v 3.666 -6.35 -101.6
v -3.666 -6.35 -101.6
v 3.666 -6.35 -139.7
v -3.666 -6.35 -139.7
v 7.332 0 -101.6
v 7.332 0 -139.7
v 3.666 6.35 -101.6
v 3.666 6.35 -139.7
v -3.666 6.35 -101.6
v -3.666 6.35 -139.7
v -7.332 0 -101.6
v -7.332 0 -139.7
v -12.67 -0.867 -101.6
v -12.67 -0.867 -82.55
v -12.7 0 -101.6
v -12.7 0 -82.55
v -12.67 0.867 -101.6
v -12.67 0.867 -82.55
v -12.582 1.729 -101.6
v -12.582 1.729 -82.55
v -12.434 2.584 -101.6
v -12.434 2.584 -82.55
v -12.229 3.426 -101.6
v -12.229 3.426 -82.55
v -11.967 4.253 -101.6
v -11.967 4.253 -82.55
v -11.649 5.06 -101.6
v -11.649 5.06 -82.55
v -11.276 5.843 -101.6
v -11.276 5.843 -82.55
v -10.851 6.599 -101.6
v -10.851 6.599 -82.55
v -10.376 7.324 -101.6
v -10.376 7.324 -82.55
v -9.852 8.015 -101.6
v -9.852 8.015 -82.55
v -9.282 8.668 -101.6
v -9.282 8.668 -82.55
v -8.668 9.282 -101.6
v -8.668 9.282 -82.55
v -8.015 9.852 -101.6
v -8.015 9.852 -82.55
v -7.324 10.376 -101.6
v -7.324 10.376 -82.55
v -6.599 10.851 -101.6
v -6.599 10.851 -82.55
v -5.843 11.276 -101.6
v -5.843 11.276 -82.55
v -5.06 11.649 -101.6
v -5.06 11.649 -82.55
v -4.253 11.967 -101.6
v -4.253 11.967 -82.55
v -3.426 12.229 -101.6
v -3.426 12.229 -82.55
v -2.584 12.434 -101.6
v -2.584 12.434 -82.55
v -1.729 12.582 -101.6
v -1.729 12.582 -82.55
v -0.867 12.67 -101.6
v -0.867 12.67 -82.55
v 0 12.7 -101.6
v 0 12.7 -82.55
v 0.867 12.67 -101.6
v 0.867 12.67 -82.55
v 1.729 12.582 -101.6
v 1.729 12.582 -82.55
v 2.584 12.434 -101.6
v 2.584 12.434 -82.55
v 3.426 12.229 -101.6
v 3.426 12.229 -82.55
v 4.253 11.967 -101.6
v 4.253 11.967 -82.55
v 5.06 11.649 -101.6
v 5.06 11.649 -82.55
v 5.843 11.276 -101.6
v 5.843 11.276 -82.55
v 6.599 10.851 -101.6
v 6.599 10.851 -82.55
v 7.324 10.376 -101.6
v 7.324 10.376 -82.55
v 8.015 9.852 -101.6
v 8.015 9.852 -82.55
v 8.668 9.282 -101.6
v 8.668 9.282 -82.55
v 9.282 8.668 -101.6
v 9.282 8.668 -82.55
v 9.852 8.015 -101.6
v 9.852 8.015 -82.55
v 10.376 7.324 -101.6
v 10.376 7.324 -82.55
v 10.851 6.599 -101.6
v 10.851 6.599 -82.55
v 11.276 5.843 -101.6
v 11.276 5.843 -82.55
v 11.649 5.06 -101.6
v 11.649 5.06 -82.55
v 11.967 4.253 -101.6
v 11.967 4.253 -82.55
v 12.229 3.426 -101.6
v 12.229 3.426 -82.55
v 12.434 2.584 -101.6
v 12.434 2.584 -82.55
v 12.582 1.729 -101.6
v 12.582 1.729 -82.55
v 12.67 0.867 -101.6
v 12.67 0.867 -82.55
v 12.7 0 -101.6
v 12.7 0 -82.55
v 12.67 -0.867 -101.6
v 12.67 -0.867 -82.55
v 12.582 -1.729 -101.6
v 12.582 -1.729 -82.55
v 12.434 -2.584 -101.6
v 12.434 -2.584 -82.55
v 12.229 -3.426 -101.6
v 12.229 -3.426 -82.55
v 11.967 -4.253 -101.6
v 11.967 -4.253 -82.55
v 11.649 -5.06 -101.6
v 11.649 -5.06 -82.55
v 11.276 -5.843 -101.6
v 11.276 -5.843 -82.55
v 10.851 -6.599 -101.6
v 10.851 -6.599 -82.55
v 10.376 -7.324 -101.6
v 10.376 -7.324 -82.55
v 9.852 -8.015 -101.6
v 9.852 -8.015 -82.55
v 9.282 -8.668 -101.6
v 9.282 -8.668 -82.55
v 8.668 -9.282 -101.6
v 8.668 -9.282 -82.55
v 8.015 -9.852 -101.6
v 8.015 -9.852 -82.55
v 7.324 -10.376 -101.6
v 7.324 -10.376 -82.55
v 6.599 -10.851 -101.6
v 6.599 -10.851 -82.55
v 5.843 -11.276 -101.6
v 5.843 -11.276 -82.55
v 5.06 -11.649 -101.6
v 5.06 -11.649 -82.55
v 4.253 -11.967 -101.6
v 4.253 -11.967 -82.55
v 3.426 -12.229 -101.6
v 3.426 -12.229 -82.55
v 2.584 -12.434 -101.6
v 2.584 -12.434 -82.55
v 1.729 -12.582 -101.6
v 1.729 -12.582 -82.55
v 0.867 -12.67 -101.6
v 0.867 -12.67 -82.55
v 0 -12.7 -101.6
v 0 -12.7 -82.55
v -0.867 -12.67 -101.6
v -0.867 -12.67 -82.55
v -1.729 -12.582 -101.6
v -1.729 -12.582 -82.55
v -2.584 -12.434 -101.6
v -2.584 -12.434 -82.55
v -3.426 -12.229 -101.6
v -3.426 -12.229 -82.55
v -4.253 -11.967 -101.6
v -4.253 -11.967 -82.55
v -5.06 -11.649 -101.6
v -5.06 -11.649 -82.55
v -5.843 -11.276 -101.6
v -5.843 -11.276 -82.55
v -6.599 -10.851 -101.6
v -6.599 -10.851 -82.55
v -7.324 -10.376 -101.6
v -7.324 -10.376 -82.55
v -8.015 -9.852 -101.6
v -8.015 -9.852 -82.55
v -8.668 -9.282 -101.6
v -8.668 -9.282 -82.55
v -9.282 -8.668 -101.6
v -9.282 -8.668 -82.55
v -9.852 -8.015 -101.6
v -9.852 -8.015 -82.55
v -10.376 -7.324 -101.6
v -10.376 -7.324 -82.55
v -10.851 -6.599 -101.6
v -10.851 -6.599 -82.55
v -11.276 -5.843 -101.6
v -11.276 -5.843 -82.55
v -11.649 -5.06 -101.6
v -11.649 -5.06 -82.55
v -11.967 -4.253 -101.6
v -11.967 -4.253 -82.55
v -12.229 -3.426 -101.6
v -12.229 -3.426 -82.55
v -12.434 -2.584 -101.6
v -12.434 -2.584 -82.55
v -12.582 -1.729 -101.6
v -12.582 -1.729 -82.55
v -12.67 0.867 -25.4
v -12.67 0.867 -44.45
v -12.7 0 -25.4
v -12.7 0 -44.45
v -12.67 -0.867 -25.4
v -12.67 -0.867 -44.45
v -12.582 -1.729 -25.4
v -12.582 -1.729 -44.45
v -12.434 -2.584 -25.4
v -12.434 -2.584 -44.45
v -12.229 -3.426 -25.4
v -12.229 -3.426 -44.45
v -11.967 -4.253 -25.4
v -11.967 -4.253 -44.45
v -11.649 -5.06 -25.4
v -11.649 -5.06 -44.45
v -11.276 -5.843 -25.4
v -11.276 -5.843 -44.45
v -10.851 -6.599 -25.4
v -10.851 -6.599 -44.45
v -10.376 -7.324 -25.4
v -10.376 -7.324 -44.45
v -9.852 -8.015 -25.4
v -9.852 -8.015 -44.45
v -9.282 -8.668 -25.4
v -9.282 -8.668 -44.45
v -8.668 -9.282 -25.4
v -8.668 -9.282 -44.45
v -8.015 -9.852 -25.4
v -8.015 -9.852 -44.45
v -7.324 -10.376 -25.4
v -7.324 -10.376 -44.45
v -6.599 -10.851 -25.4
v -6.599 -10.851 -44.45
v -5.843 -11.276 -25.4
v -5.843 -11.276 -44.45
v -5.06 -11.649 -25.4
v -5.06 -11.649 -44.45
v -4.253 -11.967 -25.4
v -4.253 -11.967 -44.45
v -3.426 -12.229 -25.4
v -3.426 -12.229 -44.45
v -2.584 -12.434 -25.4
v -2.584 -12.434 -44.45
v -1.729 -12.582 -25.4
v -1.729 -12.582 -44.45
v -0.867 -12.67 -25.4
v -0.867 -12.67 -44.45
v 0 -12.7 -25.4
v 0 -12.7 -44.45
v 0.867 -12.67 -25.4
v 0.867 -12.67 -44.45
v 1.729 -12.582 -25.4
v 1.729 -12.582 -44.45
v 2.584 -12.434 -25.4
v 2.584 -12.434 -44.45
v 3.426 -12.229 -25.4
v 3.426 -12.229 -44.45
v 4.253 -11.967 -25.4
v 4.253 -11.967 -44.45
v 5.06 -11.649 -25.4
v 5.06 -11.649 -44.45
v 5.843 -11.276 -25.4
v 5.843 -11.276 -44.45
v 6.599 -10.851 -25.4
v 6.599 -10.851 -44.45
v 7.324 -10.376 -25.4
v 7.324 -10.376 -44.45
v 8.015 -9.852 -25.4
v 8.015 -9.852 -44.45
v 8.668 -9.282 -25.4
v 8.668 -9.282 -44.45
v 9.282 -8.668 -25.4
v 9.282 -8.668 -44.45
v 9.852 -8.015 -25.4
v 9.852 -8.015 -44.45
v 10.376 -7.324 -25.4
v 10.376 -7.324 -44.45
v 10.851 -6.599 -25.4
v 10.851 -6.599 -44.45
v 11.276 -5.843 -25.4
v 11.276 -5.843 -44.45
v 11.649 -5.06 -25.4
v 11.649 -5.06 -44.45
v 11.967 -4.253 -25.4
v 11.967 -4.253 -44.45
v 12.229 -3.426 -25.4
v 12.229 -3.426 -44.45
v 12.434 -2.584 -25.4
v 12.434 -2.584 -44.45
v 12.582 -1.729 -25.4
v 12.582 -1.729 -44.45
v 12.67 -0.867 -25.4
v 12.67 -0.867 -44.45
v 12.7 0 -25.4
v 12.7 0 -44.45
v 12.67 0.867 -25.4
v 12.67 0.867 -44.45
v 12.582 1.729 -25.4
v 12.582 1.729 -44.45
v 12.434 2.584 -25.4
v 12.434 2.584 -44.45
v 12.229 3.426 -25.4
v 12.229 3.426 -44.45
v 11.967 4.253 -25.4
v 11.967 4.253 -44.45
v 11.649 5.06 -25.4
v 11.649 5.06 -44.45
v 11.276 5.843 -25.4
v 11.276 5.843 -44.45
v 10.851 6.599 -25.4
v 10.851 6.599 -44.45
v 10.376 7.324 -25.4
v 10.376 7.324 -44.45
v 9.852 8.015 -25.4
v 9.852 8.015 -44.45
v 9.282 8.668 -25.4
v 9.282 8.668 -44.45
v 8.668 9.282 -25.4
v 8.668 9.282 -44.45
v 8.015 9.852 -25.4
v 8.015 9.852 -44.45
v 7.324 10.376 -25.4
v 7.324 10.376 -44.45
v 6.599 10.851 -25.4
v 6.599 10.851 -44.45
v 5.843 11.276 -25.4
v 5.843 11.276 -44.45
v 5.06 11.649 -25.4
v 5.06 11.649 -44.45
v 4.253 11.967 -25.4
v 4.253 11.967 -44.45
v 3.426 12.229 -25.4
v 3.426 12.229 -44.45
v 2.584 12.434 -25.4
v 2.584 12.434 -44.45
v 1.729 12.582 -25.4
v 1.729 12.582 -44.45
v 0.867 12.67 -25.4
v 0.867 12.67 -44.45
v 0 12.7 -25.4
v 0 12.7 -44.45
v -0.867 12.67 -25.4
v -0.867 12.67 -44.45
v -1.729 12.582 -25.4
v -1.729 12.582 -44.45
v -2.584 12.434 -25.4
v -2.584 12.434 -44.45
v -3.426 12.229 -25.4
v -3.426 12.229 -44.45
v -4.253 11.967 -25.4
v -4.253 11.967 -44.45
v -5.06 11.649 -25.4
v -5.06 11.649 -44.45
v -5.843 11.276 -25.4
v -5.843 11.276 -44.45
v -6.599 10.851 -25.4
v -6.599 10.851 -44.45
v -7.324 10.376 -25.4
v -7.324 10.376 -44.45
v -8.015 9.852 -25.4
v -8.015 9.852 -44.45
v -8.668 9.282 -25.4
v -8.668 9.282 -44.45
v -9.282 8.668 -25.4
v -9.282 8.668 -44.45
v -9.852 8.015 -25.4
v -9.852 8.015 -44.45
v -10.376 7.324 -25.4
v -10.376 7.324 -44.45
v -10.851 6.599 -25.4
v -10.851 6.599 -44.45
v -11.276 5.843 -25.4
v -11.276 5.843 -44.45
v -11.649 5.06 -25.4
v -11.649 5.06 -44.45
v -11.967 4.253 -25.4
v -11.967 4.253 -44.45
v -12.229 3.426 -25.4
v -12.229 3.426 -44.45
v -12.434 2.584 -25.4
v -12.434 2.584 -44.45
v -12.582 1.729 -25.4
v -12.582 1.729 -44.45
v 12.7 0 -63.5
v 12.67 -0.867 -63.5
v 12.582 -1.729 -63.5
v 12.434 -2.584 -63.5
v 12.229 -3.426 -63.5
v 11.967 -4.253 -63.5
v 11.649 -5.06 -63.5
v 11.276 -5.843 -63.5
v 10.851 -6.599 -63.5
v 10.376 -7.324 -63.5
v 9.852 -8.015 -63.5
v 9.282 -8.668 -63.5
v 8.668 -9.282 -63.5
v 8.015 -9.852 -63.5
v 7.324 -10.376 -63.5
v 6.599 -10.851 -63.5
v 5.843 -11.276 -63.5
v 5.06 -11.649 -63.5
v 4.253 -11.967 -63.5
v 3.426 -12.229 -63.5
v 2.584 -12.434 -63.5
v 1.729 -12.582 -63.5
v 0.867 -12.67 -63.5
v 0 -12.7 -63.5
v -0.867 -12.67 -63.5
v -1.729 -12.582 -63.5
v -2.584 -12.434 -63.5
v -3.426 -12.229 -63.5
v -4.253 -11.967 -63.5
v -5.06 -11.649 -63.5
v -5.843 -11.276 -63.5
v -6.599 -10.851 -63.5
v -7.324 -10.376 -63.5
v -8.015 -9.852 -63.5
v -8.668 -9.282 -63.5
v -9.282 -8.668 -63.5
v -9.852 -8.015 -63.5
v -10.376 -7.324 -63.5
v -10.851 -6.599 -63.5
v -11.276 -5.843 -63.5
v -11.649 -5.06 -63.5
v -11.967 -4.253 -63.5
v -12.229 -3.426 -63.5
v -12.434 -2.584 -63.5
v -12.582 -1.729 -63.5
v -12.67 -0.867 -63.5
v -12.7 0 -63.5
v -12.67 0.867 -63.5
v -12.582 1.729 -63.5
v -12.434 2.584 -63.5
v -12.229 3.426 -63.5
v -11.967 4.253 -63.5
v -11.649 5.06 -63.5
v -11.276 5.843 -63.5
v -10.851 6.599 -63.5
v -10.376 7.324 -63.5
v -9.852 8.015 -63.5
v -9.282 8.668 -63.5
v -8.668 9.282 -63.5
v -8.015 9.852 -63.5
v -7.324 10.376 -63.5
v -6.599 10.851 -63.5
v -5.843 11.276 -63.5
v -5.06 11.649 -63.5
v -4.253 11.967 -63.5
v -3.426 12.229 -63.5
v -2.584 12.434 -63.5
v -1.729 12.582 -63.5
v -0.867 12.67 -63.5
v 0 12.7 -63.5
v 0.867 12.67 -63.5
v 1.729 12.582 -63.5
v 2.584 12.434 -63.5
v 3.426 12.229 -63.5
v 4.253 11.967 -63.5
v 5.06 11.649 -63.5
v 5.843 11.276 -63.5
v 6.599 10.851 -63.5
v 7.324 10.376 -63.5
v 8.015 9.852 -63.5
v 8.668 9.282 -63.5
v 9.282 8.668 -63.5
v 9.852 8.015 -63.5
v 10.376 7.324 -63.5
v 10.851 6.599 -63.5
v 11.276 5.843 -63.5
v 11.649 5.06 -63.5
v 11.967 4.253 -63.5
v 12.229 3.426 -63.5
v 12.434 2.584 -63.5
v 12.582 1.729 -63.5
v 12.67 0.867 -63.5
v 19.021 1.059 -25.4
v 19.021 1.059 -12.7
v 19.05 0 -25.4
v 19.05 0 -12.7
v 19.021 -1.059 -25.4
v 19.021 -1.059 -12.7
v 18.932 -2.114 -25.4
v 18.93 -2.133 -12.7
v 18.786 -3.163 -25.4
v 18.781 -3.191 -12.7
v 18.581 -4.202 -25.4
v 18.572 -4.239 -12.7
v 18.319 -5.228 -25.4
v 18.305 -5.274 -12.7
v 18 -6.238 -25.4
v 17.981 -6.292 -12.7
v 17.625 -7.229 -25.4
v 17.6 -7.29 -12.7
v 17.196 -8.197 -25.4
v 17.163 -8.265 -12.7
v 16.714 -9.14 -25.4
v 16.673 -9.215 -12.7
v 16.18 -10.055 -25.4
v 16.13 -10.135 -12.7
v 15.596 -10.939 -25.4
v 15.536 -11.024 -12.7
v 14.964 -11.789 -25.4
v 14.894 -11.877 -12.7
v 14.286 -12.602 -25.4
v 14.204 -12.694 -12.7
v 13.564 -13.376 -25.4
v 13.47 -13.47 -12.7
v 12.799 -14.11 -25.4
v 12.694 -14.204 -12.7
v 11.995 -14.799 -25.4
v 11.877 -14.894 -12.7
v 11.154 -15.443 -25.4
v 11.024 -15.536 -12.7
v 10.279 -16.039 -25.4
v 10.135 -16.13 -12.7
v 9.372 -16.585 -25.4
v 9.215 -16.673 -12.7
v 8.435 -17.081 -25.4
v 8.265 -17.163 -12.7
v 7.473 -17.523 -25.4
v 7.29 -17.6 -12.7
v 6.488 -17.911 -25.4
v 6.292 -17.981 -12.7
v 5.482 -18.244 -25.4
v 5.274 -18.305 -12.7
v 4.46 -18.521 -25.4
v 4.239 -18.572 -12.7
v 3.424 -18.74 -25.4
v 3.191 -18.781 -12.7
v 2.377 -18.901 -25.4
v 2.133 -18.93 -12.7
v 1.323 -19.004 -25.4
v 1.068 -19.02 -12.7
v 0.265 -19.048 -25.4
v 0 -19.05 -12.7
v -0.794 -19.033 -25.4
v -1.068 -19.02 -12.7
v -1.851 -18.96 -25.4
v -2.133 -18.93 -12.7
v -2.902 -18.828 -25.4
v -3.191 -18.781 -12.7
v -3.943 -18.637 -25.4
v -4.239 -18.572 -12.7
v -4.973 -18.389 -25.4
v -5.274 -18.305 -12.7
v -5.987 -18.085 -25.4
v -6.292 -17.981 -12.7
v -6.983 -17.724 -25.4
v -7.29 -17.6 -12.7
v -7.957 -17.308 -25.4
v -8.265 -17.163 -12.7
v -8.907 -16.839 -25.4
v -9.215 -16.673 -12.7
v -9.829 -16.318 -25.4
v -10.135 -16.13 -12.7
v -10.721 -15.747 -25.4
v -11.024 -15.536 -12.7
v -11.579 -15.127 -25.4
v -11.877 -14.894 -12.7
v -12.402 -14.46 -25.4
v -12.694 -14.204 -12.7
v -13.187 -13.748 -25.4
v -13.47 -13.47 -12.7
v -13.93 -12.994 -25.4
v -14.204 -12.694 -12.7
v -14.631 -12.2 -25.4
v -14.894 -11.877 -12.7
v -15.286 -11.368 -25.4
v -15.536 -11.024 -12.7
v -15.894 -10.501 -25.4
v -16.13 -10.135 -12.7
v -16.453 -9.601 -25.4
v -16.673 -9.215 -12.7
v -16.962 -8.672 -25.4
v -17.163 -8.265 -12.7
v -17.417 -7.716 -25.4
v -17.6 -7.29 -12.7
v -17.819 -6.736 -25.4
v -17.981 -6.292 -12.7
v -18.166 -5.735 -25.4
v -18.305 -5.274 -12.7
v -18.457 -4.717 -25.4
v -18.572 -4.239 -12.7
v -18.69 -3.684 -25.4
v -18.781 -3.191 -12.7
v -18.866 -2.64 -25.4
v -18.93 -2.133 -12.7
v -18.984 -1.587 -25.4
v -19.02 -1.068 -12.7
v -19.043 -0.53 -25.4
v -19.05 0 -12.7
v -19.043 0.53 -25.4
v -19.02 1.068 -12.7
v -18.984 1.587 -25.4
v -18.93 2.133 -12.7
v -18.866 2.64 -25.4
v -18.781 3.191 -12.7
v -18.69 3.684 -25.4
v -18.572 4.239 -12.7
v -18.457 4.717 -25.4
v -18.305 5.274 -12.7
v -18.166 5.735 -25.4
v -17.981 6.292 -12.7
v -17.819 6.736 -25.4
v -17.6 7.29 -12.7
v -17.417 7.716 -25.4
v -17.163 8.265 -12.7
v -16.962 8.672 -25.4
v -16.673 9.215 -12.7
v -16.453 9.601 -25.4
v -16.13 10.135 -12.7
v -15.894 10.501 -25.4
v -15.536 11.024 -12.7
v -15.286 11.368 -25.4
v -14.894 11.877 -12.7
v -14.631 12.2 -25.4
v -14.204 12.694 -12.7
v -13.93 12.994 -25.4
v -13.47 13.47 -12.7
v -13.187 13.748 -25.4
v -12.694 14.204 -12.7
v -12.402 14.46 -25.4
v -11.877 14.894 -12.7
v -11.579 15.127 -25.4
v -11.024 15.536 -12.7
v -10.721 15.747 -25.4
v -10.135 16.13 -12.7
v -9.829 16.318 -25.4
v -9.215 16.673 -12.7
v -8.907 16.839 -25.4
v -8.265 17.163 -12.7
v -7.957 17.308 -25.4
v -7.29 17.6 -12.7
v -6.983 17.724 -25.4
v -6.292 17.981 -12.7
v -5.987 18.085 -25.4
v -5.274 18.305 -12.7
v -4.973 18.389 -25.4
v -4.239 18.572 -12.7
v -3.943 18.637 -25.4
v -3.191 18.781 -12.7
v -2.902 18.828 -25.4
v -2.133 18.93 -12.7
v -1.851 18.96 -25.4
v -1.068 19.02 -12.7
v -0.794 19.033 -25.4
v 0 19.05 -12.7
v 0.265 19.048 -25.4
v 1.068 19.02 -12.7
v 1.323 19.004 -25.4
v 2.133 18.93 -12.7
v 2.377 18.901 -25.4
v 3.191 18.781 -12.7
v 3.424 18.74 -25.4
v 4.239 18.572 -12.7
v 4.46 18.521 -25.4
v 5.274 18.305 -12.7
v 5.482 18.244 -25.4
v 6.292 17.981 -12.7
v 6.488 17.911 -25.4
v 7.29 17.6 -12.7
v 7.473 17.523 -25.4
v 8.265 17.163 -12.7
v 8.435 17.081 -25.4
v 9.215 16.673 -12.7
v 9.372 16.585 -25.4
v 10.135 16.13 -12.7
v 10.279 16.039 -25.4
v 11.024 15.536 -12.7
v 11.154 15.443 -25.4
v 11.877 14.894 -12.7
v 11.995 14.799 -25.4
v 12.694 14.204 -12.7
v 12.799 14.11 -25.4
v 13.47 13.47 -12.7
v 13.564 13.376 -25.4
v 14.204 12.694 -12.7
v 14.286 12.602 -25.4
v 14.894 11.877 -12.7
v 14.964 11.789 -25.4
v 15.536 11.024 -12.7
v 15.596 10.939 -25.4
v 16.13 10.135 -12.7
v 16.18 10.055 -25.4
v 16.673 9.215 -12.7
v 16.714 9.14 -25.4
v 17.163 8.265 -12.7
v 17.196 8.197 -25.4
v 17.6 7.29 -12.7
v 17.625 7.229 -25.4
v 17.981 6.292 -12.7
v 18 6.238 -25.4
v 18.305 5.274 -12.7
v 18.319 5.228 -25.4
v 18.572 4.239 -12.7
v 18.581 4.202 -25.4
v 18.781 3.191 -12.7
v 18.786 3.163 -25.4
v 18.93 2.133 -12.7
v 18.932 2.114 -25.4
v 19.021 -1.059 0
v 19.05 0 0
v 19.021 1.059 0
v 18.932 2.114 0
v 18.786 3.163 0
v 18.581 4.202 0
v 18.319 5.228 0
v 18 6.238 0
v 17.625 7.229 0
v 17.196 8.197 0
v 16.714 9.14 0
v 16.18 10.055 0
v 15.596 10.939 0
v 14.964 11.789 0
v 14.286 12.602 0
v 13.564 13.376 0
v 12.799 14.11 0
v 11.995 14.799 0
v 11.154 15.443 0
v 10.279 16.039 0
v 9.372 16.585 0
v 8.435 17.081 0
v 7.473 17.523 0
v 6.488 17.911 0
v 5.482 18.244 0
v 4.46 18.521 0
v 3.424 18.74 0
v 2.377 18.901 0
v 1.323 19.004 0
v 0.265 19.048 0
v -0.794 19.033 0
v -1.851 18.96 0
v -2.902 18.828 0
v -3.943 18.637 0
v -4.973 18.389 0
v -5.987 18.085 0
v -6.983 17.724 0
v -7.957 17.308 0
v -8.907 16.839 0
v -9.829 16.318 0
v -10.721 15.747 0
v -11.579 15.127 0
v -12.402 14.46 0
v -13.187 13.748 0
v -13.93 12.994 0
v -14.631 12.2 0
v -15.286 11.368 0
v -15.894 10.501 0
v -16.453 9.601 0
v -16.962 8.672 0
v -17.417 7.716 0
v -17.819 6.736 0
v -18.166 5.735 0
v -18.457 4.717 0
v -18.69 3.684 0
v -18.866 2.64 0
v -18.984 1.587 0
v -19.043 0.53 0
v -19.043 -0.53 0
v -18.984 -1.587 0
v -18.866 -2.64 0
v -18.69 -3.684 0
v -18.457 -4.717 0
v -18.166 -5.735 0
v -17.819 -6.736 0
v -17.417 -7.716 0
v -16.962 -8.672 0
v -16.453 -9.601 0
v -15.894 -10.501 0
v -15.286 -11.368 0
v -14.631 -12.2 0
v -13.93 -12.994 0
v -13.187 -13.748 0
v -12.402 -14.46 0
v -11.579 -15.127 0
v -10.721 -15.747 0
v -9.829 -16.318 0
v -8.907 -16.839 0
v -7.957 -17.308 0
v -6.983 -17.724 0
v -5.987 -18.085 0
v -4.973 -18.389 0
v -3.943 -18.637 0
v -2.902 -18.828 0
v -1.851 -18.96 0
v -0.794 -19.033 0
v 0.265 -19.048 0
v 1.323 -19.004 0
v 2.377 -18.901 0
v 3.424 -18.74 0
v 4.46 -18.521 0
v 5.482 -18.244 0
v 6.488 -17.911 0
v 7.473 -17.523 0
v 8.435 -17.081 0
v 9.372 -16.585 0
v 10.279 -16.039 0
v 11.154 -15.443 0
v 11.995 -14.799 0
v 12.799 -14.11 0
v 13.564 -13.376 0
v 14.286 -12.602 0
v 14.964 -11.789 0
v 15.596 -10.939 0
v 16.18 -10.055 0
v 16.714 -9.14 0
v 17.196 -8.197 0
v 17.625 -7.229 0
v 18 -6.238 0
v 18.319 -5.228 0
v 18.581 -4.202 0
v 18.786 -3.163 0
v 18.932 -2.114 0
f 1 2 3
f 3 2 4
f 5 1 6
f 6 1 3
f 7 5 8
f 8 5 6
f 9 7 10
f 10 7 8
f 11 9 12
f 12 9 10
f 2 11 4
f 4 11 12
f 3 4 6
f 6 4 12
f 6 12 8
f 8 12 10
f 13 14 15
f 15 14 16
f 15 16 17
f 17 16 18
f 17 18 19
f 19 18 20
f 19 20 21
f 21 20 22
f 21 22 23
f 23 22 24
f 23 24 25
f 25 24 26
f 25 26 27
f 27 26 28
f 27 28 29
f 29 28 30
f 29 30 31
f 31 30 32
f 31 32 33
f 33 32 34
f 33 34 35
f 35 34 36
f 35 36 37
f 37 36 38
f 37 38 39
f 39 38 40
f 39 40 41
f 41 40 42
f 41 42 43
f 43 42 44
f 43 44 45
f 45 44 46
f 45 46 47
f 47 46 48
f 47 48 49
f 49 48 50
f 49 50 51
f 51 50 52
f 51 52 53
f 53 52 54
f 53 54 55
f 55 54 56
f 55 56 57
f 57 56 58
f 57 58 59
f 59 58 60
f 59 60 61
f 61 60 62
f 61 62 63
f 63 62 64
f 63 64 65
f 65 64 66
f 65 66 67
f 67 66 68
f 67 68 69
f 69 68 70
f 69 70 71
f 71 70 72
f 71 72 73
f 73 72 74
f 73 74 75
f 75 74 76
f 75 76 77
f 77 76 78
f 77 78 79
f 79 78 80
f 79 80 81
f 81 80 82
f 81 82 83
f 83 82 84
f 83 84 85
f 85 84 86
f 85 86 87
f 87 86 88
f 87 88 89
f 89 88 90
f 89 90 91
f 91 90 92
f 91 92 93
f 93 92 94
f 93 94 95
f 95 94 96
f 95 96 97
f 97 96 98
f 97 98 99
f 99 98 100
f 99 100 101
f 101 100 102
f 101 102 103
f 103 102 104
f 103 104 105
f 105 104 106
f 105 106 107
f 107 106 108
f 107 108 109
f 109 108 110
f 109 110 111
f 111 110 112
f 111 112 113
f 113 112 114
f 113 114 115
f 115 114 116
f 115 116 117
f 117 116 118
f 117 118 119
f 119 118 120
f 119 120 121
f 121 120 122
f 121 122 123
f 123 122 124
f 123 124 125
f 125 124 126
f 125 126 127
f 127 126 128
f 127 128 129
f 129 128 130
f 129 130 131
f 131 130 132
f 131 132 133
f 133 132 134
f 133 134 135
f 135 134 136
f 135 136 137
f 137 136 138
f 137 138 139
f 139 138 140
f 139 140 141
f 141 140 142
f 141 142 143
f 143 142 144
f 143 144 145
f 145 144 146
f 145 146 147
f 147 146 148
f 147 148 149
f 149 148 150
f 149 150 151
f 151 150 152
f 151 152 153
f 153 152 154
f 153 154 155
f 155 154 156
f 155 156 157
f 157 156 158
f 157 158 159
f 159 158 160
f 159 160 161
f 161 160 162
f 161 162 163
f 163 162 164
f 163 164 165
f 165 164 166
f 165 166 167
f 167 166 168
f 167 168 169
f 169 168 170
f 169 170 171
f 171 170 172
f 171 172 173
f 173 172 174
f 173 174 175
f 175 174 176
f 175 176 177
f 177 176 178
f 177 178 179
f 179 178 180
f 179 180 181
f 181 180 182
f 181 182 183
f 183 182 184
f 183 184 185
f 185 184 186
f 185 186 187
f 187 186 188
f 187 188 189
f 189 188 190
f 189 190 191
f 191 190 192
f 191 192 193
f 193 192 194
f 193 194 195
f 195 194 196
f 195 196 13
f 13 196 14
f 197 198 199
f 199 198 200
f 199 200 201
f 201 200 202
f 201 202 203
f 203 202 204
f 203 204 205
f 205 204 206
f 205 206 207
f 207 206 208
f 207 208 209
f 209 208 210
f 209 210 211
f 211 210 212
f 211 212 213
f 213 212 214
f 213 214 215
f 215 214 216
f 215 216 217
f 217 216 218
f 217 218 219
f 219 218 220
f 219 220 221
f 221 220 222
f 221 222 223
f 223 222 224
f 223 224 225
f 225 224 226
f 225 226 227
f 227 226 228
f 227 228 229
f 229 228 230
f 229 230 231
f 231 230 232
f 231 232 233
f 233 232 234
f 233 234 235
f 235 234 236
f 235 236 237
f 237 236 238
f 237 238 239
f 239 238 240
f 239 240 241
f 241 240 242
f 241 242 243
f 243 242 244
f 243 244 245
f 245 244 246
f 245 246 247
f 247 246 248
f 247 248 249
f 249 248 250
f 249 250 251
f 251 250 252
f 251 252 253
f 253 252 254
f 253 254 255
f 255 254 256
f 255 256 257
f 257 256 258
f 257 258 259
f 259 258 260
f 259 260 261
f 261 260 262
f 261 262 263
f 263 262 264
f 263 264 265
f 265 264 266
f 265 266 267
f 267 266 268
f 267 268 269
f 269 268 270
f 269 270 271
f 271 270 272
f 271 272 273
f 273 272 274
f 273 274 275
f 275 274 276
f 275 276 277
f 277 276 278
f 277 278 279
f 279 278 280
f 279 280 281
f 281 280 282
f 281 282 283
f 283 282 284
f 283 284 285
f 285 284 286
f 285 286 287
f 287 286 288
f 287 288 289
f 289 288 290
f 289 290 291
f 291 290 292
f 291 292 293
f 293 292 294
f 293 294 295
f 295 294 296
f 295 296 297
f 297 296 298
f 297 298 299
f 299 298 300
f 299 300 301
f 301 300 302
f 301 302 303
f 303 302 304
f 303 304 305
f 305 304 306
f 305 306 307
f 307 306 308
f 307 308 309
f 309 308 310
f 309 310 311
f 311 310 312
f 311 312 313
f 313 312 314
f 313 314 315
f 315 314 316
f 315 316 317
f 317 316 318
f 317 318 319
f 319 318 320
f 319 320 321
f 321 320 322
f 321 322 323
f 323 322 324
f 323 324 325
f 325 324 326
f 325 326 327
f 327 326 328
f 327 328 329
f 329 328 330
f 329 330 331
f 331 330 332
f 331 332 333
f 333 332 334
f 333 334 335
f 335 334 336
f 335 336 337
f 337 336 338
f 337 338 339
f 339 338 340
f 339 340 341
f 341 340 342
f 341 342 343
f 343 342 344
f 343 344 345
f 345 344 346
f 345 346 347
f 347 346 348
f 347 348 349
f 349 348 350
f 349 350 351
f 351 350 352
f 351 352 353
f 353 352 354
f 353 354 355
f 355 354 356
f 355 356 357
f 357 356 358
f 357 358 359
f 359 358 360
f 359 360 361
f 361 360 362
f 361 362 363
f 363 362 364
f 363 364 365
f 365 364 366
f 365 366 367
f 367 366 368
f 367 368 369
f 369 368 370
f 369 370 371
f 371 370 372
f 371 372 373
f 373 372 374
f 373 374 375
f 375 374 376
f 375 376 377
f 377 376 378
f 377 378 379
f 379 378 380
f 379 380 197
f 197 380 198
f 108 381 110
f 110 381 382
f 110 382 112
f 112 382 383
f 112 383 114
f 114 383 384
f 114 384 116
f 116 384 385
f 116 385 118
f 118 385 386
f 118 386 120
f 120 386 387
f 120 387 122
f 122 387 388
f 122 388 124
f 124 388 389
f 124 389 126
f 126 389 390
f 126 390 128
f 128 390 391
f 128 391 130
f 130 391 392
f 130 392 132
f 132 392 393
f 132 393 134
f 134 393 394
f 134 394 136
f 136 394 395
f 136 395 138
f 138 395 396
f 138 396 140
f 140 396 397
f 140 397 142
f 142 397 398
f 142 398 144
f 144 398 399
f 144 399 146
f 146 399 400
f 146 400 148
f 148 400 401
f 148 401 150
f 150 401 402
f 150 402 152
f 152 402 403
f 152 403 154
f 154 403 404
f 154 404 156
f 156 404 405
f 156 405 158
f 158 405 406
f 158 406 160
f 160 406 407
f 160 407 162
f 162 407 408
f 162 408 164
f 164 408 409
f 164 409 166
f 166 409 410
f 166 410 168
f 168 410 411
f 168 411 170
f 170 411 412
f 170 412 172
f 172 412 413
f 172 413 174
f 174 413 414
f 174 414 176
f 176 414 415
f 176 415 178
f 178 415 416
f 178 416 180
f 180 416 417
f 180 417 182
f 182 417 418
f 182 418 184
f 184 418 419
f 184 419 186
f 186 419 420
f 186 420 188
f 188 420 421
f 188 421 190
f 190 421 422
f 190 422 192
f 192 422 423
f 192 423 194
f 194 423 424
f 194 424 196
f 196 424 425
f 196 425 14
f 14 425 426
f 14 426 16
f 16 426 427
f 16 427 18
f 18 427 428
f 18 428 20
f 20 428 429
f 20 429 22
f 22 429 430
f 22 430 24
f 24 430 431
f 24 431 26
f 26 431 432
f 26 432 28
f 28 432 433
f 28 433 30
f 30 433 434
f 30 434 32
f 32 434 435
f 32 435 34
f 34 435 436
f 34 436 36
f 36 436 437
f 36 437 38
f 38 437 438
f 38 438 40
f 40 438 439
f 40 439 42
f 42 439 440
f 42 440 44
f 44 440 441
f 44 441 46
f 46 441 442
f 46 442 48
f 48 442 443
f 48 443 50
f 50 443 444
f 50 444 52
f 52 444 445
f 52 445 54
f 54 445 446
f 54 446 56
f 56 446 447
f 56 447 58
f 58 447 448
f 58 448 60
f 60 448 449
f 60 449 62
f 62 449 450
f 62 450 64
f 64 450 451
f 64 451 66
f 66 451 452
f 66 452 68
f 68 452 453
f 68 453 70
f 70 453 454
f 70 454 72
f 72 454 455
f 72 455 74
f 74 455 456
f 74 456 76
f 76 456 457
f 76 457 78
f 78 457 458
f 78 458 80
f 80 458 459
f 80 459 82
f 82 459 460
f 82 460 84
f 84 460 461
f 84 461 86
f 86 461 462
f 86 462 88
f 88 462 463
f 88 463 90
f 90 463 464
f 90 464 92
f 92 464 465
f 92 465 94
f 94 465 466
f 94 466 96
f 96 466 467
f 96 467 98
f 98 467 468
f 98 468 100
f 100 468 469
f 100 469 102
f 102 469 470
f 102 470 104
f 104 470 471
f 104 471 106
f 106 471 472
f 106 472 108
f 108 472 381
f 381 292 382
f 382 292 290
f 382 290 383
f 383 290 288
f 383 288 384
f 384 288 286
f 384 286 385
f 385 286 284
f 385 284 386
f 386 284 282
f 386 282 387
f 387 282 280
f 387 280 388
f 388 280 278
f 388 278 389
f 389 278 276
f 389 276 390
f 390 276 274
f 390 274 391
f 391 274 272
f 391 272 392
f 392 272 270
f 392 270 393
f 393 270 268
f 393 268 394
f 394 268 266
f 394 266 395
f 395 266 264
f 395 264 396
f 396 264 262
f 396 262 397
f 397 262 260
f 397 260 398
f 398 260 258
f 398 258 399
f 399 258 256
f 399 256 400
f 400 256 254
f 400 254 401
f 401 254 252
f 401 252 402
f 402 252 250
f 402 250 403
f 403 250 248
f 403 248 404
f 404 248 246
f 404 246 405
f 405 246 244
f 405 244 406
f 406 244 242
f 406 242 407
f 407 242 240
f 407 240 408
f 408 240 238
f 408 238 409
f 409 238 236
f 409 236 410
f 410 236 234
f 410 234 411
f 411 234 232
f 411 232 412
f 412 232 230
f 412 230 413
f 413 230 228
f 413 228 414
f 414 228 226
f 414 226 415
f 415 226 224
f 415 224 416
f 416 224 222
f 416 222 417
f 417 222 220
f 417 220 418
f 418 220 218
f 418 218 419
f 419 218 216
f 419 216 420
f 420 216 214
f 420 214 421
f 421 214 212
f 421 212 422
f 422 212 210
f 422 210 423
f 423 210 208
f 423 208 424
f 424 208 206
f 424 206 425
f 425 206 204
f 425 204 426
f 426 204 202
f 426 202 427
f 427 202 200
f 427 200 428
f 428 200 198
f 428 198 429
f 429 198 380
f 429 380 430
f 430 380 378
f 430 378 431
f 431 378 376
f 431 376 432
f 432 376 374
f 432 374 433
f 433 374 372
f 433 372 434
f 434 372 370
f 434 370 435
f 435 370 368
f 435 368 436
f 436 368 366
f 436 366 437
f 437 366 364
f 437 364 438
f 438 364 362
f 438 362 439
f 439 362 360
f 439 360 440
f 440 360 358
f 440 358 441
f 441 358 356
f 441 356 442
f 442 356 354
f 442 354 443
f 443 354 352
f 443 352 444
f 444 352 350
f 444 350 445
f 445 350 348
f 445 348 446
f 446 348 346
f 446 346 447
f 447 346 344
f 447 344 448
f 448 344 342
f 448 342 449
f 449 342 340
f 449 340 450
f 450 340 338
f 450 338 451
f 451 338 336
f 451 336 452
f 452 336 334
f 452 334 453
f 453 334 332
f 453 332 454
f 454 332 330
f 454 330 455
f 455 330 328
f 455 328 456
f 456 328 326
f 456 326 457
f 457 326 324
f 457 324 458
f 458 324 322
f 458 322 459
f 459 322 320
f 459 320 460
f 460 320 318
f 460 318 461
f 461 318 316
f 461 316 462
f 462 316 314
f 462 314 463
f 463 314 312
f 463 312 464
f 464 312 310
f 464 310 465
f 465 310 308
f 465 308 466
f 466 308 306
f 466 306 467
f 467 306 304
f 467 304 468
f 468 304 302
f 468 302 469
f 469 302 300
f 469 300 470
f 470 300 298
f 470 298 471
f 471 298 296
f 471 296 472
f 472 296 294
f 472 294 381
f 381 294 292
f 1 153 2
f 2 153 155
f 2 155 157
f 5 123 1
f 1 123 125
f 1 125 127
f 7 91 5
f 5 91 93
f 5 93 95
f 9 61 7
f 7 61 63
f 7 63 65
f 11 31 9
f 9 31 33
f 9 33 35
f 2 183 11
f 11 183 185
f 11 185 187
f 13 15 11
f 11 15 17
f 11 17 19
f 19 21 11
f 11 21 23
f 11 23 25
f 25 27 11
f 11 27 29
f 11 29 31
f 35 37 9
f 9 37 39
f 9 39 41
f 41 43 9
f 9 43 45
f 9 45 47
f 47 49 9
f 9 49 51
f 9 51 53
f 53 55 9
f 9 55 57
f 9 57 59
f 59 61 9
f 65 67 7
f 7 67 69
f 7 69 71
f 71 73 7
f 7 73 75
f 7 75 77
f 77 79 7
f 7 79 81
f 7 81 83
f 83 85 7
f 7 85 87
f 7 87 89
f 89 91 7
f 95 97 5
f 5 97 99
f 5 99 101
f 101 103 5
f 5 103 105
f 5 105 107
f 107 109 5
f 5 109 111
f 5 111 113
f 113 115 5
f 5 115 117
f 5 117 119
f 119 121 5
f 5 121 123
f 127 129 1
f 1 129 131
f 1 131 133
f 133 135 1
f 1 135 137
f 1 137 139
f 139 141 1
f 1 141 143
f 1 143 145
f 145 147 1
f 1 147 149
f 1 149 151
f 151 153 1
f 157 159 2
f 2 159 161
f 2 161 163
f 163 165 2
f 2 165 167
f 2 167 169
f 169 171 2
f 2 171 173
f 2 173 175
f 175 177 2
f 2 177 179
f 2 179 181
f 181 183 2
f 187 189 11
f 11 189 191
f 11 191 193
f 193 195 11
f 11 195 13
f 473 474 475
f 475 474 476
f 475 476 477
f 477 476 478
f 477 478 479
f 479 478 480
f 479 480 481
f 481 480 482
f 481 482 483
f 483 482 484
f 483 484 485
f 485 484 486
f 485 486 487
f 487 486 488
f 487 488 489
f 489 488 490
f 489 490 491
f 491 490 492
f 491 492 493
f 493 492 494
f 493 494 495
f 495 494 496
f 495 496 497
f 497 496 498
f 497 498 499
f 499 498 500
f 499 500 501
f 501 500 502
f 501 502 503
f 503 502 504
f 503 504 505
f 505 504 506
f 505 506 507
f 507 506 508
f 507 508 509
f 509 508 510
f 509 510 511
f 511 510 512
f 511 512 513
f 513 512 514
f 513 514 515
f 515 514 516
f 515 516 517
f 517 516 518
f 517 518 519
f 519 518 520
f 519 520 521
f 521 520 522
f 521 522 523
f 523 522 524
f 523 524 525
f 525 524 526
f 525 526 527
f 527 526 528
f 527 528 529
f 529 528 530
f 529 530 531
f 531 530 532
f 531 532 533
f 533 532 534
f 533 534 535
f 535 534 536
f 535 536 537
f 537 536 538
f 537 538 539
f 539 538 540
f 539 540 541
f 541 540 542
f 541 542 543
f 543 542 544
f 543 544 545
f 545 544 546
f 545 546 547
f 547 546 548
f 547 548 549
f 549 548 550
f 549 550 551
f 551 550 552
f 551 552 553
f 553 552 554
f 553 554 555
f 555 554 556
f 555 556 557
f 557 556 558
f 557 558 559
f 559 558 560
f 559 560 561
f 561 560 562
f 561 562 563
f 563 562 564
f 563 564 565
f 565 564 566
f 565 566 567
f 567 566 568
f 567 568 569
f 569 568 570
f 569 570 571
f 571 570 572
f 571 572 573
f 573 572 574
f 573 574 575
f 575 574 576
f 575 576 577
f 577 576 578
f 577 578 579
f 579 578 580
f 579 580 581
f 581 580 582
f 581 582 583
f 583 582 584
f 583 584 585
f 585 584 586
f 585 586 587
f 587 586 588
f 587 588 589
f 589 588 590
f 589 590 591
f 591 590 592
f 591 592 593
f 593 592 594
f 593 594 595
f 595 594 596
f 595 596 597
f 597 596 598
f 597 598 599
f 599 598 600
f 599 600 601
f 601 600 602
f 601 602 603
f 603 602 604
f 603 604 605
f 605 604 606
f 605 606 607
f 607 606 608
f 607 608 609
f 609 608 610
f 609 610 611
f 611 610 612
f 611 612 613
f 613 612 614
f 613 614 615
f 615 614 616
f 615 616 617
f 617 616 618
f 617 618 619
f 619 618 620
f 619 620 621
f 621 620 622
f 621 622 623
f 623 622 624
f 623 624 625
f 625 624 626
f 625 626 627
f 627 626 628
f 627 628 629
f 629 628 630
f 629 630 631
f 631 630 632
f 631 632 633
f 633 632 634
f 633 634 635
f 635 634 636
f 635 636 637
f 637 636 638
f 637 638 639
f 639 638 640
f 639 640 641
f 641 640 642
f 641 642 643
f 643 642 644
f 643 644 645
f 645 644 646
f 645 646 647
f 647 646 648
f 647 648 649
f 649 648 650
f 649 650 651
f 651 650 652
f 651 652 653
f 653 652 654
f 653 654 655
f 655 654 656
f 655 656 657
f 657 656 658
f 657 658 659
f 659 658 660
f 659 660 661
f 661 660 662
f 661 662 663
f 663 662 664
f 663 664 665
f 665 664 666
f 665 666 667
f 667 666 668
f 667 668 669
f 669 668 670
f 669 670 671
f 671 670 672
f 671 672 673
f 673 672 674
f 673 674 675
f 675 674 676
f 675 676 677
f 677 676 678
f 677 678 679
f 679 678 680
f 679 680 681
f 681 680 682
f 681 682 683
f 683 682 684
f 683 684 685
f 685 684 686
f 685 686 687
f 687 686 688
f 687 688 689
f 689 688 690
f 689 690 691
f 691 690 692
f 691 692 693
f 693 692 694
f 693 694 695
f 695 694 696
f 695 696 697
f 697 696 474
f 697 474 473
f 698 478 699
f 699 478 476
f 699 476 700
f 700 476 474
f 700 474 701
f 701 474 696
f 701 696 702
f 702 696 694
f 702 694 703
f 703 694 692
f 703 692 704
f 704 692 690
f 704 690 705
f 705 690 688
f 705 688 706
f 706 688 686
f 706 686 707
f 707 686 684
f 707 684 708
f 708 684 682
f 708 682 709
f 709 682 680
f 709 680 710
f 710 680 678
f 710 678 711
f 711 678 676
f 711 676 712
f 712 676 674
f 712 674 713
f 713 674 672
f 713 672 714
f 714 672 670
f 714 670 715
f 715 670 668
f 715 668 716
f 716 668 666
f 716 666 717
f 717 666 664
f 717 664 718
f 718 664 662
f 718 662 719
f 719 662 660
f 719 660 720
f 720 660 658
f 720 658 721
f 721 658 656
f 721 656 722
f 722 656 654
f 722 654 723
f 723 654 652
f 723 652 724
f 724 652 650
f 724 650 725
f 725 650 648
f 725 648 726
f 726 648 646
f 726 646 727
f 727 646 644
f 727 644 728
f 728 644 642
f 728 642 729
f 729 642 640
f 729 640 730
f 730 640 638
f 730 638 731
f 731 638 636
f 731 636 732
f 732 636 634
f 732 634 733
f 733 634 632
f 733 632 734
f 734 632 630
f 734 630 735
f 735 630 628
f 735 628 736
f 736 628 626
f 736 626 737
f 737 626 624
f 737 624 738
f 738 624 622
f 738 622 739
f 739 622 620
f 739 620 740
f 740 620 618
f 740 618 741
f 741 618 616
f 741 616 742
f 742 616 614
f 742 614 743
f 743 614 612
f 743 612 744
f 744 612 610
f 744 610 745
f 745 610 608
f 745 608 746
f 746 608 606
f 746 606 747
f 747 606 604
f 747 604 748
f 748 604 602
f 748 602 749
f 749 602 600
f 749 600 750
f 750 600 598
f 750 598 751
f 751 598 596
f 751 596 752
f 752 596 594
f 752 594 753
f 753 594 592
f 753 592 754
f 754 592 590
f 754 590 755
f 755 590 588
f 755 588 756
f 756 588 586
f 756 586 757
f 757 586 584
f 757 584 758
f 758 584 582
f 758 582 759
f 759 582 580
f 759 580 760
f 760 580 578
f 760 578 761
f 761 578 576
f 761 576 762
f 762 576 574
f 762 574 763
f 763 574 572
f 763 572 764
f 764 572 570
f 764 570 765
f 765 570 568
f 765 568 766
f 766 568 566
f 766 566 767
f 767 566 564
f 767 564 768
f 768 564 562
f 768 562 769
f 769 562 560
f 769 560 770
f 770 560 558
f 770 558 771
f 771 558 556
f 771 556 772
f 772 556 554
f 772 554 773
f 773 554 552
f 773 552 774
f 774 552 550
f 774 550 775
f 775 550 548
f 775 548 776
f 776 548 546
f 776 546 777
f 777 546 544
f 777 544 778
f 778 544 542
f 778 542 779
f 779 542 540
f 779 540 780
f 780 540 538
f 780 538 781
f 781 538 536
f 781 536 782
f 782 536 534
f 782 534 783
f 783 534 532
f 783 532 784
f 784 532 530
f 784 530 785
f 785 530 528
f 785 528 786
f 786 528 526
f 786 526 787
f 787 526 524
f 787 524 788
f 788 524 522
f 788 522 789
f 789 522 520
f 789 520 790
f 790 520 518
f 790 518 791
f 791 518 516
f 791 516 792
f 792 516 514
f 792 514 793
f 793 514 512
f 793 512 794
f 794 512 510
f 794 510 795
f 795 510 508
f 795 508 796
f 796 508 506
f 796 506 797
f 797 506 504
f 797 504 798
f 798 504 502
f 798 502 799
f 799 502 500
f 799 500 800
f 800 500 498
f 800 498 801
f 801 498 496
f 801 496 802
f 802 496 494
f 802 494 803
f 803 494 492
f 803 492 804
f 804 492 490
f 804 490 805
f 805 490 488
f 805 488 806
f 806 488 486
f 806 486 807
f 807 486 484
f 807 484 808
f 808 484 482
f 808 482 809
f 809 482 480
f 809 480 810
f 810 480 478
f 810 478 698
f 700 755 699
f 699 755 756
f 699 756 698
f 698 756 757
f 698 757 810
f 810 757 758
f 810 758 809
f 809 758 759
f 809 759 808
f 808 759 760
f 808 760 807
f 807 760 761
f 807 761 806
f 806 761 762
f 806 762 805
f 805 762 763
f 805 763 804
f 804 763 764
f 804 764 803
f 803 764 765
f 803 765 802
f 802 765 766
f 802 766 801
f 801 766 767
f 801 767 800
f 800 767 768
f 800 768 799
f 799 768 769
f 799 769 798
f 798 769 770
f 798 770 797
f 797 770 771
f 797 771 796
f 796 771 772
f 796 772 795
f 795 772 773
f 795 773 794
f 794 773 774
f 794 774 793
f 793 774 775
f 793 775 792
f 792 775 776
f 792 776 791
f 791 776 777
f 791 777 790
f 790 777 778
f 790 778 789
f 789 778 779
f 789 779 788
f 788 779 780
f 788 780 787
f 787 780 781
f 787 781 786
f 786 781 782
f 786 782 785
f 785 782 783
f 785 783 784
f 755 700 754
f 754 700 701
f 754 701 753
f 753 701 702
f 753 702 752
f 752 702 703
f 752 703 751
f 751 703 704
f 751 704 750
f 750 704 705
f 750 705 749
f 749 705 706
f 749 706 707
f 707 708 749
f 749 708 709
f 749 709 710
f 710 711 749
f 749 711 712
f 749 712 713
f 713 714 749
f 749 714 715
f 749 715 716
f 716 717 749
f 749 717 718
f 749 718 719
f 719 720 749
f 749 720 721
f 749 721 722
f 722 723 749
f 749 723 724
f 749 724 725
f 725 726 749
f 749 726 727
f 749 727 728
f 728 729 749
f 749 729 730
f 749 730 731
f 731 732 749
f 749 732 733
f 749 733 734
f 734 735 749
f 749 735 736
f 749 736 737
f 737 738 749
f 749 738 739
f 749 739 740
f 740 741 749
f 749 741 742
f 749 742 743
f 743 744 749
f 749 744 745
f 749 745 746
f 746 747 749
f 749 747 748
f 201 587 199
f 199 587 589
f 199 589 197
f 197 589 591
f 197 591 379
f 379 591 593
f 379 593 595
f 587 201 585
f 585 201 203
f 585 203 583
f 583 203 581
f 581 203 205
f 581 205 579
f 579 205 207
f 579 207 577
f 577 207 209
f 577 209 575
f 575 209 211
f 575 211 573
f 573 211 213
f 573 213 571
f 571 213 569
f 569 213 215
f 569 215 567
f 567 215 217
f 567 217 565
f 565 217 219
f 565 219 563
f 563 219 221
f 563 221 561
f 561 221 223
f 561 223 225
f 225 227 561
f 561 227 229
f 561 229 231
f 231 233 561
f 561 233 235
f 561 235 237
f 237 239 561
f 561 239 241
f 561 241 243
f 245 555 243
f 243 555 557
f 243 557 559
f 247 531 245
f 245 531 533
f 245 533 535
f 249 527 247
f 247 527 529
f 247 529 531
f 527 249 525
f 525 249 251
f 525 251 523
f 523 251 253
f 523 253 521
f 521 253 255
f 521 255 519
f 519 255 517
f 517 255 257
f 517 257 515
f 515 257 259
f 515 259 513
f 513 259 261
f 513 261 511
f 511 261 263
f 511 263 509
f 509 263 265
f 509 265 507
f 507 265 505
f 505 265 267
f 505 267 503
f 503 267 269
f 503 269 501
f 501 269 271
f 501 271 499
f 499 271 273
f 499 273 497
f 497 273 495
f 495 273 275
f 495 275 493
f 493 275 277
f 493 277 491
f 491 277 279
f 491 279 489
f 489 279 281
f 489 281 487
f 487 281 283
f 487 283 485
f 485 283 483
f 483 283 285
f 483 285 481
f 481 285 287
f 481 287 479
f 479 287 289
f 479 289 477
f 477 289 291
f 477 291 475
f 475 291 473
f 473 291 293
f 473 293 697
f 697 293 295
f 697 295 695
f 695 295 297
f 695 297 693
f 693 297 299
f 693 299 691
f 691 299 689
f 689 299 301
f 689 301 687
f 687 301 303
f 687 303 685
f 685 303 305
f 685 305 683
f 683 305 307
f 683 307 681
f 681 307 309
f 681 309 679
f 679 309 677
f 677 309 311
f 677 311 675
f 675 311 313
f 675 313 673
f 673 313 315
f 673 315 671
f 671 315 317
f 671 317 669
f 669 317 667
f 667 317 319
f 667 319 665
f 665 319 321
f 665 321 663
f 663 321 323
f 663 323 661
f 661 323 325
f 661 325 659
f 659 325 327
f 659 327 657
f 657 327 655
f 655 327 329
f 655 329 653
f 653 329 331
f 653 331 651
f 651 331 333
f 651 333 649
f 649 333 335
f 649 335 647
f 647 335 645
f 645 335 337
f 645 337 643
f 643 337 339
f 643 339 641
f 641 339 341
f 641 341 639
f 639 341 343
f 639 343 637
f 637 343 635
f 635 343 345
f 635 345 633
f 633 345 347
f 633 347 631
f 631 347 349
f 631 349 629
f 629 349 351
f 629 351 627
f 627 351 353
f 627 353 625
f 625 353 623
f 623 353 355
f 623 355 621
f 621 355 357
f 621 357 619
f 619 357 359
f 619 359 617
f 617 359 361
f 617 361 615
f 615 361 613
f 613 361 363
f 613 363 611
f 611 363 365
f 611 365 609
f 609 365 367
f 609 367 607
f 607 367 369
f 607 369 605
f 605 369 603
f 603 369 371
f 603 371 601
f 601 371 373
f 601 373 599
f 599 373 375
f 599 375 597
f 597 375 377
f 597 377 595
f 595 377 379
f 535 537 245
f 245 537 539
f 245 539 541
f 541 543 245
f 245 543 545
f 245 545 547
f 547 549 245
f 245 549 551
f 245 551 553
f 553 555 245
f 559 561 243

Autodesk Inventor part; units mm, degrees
ref_plane "YZ Plane" through (0, 0, 0) normal (1, 0, 0) x (0, 1, 0)
ref_plane "XZ Plane" through (0, 0, 0) normal (0, 1, 0) x (-1, 0, 0)
ref_plane "XY Plane" through (0, 0, 0) normal (0, 0, 1) x (1, 0, 0)
sketch "Sketch1" plane through (0, 0, 0) normal (0, 0, 1) x (1, 0, 0)
  circle A0 centre (0, 0) radius 19.05
  dimension "d0" = 38.1
extrude "Extrusion1" add sketch "Sketch1" against normal blind 25.4
sketch "Sketch3" plane through (0, 0, -25.4) normal (0, 0, -1) x (-1, 0, 0)
  circle A0 centre (0, 0) radius 12.7
  dimension "d4" = 25.4
extrude "Extrusion2" add sketch "Sketch3" along normal blind 76.2
sketch "Sketch4" plane through (0, 0, -101.6) normal (0, 0, -1) x (-1, 0, 0)
  line L0 (-3.6662, -6.35) -> (-7.3323, 0)
  line L1 (-7.3323, 0) -> (-3.6662, 6.35)
  line L2 (-3.6662, 6.35) -> (3.6662, 6.35)
  line L3 (3.6662, 6.35) -> (7.3323, 0)
  line L4 (7.3323, 0) -> (3.6662, -6.35)
  line L5 (3.6662, -6.35) -> (-3.6662, -6.35)
  point P0 (0, 0)
  point P1 (0, 0)
  dimension "d7" = 12.7
extrude "Extrusion3" add sketch "Sketch4" along normal blind 38.1
properties part number "ForTurningForkDrive"
